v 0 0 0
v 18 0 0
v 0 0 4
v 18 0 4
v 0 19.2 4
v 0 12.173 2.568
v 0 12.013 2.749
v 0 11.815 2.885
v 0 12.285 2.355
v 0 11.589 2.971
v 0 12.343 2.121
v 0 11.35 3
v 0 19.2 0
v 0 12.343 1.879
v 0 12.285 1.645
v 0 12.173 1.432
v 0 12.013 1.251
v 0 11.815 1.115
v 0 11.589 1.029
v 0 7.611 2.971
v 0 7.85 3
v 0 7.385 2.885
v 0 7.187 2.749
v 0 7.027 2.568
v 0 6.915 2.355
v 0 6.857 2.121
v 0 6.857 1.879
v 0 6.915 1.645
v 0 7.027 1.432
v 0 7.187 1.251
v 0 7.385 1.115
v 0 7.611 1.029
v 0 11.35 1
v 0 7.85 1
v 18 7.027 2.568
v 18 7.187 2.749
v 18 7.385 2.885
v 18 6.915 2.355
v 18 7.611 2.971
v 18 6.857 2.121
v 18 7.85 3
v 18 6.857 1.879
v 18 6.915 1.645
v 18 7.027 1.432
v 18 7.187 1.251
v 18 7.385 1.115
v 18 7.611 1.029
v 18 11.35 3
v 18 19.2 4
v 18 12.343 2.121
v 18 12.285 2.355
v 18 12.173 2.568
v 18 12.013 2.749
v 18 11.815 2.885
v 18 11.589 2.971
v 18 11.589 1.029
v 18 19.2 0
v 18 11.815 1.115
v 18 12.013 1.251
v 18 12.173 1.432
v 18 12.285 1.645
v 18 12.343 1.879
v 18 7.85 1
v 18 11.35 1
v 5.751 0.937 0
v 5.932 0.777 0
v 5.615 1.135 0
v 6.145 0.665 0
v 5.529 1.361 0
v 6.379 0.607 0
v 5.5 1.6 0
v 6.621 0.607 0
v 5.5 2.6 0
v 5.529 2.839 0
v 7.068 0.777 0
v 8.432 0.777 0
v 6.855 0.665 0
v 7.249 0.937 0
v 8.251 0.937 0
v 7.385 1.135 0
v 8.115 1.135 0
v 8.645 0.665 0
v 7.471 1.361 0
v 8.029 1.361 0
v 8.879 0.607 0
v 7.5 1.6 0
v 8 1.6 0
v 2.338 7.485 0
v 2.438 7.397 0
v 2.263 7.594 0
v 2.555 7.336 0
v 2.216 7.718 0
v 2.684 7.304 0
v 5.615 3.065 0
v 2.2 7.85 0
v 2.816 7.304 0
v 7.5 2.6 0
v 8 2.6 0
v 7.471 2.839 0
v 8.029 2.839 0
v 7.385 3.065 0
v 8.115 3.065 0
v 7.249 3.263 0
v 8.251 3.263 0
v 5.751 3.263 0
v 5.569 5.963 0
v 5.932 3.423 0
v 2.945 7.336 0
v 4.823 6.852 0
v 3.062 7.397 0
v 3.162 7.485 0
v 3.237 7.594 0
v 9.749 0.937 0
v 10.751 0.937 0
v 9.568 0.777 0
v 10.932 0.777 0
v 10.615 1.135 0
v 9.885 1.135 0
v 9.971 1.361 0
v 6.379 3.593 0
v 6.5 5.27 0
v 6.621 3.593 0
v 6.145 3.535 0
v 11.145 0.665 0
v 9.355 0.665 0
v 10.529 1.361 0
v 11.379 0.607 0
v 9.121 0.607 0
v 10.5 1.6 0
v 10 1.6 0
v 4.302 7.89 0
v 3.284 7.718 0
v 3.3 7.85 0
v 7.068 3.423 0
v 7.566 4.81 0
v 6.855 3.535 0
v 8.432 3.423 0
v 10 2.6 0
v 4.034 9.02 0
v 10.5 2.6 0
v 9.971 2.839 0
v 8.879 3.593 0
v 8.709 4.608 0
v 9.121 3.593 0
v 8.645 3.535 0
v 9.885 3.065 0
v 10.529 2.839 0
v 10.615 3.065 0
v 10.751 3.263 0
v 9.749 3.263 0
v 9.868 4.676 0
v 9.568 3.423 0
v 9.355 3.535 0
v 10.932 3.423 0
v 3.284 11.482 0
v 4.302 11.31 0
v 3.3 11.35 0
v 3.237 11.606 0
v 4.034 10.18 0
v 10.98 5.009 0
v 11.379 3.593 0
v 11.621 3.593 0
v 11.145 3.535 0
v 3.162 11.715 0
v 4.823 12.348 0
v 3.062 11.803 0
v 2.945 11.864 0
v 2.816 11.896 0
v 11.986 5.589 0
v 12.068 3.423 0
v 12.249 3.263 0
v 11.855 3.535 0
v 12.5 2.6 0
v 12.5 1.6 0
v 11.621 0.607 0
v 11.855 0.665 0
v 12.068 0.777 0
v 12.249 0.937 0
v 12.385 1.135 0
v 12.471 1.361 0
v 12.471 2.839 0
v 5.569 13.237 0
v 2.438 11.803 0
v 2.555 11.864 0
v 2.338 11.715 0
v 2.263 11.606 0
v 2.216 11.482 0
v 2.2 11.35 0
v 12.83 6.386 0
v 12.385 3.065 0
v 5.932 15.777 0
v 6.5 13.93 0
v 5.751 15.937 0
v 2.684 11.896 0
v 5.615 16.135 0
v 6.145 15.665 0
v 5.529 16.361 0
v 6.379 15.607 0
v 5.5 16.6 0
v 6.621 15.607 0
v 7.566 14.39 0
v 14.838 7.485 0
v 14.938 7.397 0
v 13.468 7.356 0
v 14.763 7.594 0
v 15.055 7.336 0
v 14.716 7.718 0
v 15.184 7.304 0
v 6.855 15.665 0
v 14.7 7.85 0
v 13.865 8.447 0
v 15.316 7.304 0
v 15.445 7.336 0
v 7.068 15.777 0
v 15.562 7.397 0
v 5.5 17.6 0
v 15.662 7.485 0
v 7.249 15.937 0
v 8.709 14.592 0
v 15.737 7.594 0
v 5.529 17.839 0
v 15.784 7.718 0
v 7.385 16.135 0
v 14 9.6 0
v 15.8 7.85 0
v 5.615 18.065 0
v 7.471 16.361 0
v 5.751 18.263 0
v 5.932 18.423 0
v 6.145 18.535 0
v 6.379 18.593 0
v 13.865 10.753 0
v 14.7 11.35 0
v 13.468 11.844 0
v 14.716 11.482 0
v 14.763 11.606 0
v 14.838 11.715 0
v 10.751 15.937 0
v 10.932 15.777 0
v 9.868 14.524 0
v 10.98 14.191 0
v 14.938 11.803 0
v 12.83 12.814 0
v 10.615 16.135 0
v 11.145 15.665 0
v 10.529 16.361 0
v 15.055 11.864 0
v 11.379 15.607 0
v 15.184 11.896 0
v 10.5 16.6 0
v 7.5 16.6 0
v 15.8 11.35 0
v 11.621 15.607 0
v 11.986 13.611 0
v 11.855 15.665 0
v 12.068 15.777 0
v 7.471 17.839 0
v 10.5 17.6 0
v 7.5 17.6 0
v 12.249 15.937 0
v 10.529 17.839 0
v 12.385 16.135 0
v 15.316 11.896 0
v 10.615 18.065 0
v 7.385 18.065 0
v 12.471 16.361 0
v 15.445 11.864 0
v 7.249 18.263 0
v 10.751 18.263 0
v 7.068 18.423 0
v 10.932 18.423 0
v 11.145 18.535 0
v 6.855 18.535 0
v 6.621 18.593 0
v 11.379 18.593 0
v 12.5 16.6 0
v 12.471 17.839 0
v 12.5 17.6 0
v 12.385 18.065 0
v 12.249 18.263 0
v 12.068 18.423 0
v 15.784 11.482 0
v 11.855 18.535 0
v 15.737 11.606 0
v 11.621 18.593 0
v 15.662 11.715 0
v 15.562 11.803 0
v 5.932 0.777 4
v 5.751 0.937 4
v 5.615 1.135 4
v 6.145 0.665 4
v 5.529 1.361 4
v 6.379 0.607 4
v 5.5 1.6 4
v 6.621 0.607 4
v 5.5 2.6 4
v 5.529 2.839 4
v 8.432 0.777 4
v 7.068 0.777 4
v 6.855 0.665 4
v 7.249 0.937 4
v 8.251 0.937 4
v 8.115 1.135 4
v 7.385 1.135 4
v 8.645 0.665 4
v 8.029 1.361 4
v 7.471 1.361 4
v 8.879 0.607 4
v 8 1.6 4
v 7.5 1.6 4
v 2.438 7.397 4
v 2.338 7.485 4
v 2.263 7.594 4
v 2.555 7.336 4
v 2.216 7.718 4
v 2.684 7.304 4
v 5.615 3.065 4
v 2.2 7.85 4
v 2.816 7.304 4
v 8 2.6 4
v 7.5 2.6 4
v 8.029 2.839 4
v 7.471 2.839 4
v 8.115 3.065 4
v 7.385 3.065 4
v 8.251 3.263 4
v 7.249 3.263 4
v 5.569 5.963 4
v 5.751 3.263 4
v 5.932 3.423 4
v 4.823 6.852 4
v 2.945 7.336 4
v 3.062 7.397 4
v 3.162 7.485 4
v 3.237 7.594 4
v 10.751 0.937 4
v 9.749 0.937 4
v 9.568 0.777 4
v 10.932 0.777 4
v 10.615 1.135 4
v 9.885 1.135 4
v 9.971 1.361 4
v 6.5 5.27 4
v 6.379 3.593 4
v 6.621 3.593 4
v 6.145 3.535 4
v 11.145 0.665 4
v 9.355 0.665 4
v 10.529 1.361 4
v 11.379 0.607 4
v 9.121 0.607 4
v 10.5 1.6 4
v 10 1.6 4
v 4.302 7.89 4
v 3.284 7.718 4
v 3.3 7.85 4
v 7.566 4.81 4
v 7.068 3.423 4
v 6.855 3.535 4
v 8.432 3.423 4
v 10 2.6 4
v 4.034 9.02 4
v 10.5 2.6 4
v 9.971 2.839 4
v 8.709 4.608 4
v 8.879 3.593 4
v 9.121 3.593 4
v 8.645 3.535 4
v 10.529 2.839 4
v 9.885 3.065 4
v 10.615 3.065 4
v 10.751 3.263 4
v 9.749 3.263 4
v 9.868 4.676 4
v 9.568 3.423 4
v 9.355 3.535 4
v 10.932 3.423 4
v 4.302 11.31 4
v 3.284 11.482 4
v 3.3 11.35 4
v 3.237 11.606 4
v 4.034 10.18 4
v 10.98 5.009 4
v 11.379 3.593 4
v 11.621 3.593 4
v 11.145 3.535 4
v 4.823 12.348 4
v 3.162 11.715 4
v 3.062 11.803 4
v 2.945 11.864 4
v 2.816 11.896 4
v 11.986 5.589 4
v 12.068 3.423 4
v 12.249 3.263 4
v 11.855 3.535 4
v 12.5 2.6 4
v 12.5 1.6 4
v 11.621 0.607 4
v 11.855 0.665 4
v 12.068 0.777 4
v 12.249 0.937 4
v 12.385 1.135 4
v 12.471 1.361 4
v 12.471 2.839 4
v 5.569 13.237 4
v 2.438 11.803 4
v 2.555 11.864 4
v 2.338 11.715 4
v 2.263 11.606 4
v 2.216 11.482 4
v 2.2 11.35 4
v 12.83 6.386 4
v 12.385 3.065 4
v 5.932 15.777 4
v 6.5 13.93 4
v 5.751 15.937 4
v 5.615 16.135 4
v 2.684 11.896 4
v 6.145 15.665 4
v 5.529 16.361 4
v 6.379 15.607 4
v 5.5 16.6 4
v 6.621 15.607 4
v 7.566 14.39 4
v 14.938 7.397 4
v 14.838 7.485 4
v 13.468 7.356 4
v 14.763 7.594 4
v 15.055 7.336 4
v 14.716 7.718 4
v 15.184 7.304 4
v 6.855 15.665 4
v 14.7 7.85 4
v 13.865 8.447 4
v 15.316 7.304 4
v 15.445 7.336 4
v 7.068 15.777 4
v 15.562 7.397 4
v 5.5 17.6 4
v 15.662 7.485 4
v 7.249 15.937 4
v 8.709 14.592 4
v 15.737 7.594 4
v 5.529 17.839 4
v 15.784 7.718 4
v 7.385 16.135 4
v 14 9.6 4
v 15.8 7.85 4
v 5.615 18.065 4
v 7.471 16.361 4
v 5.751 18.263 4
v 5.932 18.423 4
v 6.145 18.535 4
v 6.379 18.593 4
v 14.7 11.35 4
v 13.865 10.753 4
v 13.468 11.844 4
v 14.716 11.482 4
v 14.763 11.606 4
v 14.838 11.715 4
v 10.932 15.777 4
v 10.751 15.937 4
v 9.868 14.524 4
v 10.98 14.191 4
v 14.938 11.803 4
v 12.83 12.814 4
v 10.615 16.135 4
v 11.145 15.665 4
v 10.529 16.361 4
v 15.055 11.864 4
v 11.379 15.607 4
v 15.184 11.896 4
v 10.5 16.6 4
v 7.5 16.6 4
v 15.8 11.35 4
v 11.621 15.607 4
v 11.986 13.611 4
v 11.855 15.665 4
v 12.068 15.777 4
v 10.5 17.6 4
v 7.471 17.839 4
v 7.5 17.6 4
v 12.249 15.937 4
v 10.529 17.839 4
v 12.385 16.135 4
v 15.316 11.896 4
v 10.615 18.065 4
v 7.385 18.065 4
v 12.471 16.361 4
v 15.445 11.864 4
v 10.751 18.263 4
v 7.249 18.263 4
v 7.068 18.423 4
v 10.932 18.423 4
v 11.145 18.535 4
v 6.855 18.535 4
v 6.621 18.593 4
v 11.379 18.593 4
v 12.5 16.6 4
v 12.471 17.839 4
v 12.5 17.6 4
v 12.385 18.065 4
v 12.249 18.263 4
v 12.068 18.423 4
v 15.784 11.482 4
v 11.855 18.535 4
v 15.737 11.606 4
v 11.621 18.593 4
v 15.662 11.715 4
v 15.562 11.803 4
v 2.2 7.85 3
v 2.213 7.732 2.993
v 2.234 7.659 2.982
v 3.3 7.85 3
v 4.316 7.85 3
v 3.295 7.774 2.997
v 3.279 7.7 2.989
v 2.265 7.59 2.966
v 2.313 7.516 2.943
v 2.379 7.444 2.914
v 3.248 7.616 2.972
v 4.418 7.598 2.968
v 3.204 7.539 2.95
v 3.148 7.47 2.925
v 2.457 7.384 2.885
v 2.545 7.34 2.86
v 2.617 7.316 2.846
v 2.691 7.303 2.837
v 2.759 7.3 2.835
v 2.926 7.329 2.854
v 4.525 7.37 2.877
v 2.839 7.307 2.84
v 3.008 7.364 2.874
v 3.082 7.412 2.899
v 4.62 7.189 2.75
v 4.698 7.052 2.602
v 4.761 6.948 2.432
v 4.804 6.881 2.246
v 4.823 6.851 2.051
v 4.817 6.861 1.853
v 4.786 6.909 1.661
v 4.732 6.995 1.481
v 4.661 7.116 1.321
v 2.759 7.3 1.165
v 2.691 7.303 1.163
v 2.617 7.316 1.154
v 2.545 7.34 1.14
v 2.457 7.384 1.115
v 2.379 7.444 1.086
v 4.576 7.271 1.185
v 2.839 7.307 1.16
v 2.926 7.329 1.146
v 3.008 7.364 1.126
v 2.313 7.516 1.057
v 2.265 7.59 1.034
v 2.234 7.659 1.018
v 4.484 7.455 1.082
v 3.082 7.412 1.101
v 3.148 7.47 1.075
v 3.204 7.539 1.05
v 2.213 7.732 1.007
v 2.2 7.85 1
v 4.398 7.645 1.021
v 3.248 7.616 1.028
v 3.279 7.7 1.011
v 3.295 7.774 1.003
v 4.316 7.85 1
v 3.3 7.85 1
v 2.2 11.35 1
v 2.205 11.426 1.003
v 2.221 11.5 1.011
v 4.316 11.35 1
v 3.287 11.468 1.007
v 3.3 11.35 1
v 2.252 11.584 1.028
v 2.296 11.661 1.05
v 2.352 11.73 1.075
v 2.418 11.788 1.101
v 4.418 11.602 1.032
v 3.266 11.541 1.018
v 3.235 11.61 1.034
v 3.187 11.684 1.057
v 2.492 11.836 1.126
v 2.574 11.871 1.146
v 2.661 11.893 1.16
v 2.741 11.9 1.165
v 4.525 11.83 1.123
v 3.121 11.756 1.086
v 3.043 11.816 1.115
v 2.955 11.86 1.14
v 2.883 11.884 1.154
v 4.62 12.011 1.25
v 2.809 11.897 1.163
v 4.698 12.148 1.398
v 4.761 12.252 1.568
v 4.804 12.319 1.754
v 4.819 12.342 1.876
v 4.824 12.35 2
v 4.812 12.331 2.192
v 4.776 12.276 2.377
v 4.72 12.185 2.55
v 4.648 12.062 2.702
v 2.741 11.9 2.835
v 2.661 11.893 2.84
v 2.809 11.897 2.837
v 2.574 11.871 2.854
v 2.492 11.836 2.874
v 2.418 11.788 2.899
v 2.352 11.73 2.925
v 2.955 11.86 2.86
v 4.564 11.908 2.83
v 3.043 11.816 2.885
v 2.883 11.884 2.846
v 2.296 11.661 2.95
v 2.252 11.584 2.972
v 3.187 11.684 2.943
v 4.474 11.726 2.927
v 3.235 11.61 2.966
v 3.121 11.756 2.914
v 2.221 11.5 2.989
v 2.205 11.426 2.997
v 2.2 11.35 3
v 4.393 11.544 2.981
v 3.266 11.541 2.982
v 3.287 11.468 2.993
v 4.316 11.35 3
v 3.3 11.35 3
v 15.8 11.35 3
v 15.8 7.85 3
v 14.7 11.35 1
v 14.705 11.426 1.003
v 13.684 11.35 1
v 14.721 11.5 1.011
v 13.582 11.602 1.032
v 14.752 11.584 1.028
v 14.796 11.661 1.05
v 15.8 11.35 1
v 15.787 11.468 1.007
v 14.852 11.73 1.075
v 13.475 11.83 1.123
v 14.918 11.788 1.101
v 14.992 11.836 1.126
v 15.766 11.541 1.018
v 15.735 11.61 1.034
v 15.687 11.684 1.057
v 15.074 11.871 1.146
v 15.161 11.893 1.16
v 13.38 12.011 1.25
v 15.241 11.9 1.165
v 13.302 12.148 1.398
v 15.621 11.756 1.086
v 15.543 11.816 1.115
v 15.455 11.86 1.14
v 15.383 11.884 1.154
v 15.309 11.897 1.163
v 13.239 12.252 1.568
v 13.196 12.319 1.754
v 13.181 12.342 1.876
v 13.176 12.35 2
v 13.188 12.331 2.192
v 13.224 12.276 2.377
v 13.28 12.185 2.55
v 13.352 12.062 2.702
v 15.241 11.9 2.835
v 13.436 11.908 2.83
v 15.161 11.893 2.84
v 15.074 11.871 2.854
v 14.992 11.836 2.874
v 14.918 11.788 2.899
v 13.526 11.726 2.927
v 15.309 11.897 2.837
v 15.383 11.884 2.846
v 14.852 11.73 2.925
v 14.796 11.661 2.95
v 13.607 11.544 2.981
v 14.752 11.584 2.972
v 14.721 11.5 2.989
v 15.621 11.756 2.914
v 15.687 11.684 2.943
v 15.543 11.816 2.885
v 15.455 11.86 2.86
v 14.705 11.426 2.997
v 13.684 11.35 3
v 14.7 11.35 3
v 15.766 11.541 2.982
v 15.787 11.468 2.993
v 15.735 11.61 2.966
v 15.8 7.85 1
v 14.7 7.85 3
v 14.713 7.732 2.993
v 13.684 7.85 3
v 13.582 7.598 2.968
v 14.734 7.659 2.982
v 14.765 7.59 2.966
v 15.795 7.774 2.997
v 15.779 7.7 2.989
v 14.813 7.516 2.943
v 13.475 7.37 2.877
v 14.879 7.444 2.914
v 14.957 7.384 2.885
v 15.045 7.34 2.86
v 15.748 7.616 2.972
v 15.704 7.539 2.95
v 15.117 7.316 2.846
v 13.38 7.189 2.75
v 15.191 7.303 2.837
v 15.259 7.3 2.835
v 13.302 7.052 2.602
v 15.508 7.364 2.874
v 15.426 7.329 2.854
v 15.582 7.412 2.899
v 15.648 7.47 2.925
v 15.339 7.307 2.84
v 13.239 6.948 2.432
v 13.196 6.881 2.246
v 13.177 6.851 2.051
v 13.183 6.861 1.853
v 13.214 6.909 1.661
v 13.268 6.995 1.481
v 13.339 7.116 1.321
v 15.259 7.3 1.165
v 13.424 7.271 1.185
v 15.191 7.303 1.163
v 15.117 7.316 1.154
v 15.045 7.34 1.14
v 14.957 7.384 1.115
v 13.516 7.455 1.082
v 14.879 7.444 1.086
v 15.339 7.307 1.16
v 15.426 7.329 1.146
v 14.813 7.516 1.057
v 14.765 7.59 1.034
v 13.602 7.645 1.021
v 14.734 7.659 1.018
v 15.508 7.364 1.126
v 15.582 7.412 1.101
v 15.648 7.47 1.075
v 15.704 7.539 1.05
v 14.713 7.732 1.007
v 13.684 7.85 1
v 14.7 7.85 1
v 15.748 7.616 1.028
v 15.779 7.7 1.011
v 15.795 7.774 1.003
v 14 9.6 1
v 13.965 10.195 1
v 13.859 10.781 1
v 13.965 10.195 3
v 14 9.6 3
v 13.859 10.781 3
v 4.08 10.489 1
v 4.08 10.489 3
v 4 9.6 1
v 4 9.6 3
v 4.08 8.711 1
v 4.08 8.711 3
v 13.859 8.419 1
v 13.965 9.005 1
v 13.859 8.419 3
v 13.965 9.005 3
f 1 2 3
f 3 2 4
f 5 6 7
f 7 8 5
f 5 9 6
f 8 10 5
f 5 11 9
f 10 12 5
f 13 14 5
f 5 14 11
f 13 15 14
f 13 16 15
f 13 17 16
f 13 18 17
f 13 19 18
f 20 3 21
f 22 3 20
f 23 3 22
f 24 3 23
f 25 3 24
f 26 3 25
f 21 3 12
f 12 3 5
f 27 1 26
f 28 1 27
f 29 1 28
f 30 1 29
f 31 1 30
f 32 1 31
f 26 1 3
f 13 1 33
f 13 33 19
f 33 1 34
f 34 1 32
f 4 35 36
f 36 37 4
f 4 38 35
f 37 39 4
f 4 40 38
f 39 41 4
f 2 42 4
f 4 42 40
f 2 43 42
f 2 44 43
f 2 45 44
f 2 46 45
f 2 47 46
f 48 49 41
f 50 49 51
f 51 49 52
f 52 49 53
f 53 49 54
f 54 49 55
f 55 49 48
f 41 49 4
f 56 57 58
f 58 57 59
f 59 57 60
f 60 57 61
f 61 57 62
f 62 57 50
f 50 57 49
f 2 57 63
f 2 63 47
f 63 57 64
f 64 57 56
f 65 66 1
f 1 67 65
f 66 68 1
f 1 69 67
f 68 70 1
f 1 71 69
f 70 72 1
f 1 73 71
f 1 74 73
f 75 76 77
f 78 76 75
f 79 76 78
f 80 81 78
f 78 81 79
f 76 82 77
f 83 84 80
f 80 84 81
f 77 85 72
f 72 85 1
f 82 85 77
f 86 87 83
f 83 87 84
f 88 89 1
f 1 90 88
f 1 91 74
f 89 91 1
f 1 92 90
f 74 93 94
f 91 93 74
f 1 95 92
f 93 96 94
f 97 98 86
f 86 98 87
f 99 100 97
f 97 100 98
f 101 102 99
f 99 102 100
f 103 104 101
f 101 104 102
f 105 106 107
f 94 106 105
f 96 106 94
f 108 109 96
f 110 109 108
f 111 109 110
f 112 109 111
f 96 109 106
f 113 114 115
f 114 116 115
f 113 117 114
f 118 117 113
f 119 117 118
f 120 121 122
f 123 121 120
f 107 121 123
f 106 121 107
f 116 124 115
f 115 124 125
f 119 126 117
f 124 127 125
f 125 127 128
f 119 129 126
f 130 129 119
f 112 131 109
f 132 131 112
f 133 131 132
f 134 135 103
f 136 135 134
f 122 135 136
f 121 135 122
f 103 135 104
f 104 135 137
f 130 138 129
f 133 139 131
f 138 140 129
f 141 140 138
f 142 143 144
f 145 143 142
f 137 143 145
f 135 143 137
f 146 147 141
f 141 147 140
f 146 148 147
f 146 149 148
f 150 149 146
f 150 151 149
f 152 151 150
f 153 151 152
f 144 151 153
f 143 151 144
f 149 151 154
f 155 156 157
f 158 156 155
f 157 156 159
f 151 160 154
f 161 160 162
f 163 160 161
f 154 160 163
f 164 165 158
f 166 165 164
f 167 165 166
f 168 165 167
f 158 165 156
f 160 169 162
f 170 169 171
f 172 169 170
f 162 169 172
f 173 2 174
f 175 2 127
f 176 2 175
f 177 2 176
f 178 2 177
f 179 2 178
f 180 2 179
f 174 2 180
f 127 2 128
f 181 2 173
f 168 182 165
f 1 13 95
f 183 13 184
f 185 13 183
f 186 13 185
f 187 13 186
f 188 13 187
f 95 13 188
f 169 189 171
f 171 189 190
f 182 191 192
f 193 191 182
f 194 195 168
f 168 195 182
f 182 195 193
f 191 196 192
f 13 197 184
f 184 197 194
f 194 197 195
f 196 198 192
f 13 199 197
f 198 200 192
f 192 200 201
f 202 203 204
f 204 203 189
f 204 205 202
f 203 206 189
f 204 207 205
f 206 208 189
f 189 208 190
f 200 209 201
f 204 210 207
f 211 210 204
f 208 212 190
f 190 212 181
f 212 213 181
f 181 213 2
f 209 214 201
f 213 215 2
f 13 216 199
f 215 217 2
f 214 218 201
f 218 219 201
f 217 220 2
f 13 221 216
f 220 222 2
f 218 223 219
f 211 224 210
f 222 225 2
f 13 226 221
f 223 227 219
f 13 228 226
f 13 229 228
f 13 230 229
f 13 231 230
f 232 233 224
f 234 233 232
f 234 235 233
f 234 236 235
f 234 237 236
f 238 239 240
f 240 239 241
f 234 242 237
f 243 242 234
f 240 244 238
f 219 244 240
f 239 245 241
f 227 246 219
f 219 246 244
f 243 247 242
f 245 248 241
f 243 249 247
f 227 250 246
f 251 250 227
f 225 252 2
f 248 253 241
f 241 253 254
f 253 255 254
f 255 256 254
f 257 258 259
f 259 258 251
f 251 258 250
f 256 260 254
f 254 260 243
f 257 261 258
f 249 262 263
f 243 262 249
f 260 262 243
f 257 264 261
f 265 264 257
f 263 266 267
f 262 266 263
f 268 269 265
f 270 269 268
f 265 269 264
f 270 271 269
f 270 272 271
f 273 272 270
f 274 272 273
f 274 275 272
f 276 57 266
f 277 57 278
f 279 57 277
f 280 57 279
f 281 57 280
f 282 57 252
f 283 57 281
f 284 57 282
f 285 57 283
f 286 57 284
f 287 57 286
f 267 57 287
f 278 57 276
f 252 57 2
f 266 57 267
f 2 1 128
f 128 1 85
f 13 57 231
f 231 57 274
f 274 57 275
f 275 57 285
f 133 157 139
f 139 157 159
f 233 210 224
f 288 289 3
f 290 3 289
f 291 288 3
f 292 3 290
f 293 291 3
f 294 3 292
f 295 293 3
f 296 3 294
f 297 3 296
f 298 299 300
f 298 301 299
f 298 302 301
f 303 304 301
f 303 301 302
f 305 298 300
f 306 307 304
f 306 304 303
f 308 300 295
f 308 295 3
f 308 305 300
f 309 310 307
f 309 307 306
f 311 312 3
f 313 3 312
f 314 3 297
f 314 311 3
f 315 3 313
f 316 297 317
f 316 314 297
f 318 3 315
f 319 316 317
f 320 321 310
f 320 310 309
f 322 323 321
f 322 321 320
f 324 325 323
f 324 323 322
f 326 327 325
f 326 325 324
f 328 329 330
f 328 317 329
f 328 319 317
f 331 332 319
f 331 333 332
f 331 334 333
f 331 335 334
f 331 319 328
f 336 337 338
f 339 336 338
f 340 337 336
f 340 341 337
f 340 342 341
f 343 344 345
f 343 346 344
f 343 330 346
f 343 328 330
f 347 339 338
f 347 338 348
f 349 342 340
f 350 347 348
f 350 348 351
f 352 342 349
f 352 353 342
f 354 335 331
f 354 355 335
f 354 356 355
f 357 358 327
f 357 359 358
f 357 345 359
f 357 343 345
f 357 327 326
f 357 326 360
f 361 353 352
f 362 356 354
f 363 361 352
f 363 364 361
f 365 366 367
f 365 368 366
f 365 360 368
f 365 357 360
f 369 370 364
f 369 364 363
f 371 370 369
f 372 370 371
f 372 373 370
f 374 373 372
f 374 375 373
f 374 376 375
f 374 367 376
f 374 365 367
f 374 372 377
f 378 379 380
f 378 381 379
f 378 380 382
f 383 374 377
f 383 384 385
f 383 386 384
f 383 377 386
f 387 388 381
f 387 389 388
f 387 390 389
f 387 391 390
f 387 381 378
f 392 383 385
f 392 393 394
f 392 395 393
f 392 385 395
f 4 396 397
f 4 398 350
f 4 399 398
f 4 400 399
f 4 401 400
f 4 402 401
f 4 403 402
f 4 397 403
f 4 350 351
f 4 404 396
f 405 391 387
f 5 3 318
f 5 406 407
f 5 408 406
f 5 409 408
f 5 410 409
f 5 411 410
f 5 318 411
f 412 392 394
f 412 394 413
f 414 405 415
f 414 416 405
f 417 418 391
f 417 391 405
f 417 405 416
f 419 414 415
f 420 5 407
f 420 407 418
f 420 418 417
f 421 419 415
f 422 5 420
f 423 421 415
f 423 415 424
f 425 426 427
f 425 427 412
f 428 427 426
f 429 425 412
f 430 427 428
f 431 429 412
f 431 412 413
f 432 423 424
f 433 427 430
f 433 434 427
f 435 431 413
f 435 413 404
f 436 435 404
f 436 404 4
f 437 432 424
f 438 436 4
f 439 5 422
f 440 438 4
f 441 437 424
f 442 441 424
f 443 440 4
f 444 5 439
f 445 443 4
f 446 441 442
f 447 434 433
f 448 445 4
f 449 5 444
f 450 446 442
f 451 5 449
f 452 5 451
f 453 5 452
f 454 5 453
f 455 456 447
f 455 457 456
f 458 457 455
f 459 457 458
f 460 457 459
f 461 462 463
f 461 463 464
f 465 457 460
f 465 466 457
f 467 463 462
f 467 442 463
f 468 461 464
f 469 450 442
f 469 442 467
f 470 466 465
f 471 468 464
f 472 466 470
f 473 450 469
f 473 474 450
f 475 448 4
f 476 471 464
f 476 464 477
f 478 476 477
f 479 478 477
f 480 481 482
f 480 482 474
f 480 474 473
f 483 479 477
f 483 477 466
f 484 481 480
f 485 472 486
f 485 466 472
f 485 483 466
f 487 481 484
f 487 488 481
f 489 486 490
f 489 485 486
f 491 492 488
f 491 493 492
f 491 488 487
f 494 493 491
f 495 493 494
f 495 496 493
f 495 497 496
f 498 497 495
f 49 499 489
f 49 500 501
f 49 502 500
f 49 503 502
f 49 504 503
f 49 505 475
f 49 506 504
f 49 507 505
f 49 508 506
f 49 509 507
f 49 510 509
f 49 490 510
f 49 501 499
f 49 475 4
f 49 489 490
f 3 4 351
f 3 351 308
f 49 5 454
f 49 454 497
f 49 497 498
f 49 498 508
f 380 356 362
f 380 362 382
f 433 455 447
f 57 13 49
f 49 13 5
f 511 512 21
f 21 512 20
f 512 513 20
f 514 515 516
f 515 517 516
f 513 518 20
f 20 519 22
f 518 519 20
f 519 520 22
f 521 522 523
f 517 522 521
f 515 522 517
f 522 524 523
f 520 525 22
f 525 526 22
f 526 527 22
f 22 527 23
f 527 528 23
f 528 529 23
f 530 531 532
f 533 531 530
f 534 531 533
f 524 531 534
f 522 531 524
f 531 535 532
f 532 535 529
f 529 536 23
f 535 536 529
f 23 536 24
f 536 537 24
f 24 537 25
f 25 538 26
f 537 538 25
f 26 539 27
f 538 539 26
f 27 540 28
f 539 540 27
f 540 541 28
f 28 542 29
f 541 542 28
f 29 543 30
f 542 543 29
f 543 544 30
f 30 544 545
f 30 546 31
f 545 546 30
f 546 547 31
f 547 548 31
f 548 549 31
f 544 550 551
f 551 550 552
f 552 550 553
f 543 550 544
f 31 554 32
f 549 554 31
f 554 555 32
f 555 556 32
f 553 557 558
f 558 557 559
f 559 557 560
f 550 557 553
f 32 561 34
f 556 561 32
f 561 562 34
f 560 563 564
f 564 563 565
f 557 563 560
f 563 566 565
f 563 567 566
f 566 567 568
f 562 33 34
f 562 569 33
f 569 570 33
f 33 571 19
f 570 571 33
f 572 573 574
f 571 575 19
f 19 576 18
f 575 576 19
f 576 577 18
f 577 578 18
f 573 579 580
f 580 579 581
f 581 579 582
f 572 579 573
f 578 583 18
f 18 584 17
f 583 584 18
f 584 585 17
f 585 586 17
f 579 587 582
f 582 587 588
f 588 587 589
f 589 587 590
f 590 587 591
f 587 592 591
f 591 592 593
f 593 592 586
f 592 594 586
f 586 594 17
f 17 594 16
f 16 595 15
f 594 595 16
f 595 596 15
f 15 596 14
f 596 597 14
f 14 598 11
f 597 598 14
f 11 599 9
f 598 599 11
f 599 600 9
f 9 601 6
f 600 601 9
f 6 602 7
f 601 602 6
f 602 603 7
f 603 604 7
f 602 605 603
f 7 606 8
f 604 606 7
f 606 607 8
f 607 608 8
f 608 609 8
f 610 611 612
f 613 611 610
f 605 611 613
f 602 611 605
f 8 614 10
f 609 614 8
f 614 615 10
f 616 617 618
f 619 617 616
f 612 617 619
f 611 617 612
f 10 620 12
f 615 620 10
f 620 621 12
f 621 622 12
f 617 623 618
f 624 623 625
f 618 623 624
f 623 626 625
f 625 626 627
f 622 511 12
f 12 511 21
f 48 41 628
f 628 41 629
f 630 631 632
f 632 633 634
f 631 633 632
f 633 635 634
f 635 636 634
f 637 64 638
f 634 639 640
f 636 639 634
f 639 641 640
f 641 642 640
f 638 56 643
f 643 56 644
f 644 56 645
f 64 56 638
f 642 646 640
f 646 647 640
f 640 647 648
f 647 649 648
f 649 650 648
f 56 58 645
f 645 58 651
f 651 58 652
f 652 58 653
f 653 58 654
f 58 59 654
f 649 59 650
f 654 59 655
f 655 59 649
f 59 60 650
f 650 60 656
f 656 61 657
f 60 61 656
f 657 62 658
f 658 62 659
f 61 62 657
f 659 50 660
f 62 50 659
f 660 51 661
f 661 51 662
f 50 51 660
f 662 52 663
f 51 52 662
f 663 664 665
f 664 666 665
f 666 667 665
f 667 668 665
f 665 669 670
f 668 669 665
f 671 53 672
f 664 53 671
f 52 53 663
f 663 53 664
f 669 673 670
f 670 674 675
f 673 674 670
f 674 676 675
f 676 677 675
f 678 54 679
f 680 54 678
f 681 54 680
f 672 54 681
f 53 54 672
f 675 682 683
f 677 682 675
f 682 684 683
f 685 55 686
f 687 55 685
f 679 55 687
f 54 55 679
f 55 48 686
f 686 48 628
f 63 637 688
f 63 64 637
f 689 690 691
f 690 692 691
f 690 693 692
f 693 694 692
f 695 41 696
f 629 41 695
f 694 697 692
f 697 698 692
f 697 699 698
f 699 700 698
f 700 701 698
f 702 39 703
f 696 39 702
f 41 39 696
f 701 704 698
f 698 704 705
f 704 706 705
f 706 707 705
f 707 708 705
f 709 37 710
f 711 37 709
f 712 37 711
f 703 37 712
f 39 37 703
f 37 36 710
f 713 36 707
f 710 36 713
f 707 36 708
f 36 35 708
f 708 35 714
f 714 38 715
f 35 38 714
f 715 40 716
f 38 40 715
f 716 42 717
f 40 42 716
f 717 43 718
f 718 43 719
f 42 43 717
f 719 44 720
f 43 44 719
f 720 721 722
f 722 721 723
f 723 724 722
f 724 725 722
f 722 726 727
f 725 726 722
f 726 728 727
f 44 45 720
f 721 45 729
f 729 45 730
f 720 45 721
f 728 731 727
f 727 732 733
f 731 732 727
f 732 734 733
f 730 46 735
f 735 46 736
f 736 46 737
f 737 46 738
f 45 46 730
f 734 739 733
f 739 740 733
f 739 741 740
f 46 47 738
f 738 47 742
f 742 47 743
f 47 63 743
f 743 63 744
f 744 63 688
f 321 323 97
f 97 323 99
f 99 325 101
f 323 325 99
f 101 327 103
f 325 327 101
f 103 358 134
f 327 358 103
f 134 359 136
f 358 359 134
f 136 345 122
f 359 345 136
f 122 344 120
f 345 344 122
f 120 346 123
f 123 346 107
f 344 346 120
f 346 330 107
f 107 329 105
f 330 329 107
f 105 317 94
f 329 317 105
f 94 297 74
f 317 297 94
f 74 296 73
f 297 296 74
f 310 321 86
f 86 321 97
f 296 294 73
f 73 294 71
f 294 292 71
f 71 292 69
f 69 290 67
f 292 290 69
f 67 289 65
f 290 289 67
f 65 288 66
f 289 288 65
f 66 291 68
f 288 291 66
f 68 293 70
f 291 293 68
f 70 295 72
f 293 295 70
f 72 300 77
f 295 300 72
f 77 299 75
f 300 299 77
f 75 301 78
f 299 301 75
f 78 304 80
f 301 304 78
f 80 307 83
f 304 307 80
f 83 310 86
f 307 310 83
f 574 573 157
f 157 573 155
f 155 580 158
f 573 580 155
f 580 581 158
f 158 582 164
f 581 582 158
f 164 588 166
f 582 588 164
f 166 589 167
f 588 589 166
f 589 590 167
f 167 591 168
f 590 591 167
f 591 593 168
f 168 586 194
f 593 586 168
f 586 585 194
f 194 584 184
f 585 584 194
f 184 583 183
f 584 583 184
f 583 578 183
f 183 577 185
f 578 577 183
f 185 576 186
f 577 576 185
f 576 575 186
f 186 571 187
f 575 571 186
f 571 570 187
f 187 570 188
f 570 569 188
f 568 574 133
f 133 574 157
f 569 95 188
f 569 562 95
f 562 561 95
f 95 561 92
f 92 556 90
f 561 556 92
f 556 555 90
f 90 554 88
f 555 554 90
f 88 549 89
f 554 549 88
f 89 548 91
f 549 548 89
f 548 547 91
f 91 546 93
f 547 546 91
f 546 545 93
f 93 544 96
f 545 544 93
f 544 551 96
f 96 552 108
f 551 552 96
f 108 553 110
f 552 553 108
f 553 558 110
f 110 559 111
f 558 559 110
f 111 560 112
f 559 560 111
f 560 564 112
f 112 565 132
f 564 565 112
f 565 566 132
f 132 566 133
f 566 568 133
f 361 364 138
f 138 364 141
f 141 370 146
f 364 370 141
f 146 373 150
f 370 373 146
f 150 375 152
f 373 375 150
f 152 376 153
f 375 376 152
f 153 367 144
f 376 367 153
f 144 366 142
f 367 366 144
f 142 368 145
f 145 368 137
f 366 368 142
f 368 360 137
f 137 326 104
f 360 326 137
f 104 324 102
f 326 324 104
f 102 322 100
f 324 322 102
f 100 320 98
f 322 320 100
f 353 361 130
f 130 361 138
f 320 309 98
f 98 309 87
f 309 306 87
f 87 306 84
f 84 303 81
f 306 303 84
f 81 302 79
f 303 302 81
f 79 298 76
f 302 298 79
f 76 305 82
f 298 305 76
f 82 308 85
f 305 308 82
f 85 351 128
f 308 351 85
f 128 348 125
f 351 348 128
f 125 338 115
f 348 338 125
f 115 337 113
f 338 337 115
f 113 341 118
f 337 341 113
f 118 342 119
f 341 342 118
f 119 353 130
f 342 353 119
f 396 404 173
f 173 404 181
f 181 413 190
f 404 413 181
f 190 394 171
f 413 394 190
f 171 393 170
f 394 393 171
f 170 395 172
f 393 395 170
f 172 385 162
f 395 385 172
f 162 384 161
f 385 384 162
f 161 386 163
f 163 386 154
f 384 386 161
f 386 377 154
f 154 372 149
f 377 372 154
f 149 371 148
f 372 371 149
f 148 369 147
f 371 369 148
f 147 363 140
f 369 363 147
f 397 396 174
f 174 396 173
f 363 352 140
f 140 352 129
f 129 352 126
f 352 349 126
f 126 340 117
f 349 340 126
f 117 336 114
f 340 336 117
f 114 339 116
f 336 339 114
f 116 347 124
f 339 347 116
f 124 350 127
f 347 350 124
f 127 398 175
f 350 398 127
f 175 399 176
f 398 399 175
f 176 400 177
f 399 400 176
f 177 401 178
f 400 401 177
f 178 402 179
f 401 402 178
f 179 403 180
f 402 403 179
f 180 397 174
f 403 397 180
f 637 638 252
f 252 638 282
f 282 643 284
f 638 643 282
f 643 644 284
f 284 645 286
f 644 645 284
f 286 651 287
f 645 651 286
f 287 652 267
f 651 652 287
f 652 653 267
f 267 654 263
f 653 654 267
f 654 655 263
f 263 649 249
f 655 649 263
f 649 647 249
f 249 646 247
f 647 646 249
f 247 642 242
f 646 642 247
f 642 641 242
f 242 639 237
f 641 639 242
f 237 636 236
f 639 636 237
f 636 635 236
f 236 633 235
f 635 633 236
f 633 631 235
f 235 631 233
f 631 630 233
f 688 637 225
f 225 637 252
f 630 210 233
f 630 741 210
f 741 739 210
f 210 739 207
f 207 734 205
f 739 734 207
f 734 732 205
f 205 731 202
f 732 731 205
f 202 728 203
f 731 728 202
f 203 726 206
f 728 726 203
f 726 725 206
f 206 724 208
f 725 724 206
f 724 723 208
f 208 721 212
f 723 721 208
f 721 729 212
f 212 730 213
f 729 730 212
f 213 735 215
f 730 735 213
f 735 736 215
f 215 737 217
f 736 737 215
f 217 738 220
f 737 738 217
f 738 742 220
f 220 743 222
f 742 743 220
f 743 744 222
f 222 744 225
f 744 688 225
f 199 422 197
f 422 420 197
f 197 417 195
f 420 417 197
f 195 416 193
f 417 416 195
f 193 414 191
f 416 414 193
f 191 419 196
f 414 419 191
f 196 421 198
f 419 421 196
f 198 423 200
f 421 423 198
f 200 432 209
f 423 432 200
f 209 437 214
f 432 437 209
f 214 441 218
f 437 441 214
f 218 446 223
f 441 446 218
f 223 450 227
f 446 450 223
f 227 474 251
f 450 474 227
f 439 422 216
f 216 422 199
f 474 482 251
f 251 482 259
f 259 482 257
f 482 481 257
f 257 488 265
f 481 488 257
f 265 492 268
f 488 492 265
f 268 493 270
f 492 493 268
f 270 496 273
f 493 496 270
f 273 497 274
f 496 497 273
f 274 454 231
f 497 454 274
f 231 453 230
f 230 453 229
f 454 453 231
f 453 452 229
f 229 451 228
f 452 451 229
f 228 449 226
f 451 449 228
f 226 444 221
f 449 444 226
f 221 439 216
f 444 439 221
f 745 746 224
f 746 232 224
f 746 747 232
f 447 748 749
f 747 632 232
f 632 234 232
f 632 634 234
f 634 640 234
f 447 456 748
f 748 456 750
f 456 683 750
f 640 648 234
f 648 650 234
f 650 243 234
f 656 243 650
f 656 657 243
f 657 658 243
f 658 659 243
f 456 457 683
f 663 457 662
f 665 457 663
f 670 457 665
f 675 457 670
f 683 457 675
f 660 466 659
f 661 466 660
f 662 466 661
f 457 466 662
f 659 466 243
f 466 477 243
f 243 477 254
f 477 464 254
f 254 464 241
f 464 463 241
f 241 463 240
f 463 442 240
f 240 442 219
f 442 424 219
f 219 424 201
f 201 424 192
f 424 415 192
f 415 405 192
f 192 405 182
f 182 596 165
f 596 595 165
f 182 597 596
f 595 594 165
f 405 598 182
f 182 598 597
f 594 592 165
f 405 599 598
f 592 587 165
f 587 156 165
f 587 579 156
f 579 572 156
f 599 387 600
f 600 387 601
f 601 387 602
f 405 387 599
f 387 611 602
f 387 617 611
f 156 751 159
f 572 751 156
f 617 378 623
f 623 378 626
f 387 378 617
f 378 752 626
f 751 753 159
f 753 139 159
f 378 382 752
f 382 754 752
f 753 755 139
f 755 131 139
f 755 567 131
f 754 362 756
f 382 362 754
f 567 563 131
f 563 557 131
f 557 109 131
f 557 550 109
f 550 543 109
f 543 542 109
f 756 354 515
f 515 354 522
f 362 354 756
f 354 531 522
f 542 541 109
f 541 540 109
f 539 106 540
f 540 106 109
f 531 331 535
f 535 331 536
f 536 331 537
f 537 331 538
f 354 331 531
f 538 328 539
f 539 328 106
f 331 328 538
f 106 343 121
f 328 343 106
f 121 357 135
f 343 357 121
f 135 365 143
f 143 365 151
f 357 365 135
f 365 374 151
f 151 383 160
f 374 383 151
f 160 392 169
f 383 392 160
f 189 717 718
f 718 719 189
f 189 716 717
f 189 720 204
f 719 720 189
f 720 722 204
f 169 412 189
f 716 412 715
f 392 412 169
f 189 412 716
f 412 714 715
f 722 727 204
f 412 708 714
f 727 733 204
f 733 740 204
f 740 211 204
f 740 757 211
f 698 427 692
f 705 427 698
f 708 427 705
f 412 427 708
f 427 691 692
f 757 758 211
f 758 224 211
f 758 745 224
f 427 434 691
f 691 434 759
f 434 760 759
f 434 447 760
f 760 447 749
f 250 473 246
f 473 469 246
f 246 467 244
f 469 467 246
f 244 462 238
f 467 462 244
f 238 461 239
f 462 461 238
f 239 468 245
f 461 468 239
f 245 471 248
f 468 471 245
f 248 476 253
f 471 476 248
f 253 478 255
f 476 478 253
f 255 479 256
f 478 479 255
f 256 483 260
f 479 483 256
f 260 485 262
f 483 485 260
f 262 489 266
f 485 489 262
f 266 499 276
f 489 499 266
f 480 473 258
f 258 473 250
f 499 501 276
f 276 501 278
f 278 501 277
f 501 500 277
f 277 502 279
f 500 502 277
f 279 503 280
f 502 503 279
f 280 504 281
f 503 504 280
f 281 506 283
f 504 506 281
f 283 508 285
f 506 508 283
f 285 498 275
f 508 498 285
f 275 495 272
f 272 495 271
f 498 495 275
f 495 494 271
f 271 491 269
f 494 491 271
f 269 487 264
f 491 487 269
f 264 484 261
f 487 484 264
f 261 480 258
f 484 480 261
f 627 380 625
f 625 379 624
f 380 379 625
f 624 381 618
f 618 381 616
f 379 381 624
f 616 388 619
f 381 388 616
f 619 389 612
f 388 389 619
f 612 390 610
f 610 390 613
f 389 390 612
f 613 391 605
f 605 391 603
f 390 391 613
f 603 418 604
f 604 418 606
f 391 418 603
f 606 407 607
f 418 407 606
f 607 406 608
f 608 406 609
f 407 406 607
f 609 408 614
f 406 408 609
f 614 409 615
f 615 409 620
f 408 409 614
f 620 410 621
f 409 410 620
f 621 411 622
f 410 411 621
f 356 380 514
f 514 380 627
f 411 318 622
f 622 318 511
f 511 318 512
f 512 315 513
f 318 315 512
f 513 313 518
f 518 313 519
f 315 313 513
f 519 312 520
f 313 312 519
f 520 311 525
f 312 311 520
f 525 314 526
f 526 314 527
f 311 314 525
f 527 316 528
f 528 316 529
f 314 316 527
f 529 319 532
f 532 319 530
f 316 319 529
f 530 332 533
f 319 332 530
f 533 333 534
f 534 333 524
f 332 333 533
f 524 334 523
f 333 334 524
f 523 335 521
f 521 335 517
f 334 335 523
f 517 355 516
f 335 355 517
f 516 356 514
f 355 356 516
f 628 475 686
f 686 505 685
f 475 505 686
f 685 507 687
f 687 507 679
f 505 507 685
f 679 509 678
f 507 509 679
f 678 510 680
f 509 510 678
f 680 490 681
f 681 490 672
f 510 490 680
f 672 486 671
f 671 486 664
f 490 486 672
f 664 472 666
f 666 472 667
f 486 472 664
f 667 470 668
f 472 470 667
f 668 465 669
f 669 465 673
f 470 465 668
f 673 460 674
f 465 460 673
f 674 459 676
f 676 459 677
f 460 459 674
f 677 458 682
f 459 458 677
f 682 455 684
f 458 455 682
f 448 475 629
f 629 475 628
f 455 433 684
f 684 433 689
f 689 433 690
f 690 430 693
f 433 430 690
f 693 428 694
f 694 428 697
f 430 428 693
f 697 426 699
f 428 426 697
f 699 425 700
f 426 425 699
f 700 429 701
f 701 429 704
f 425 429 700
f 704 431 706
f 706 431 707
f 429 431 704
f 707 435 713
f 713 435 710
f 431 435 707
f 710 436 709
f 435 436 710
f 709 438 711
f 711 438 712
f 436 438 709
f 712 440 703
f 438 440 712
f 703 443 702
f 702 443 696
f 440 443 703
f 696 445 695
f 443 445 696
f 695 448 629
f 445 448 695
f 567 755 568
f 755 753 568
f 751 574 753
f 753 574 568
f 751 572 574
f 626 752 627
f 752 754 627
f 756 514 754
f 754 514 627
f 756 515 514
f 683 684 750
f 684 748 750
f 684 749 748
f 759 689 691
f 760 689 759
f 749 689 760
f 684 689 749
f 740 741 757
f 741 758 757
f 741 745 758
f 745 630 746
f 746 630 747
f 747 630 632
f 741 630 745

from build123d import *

# Parameters (mm, degrees)
SKETCH_W             = 18
SKETCH_H             = 19.2
PAD_DEPTH            = 4
POCKET_DEPTH         = 0.001
POCKET_DEPTH_BACK    = -4.001
POCKET001_DEPTH      = 0.001
POCKET001_DEPTH_BACK = -18.001
SKETCH003_R          = 5
POCKET002_DEPTH      = 4.001


with BuildPart() as part:
    # Sketch → Pad (new body)
    with BuildSketch(Plane.XY):
        with Locations((9, 9.6)):
            Rectangle(SKETCH_W, SKETCH_H)
    extrude(amount=PAD_DEPTH)

    # Sketch001 → Pocket (cut, two sides)
    with BuildSketch(Plane.XY) as pocket_sk:
        with BuildLine():
            ThreePointArc((3.3, 11.35), (2.75, 11.9), (2.2, 11.35))
            Line((2.2, 11.35), (2.2, 7.85))
            ThreePointArc((2.2, 7.85), (2.75, 7.3), (3.3, 7.85))
            Line((3.3, 7.85), (3.3, 11.35))
        make_face()
        with BuildLine():
            ThreePointArc((15.8, 11.35), (15.25, 11.9), (14.7, 11.35))
            Line((14.7, 11.35), (14.7, 7.85))
            ThreePointArc((14.7, 7.85), (15.25, 7.3), (15.8, 7.85))
            Line((15.8, 7.85), (15.8, 11.35))
        make_face()
        with BuildLine():
            ThreePointArc((5.5, 16.6), (6.5, 15.6), (7.5, 16.6))
            Line((7.5, 16.6), (7.5, 17.6))
            ThreePointArc((7.5, 17.6), (6.5, 18.6), (5.5, 17.6))
            Line((5.5, 17.6), (5.5, 16.6))
        make_face()
        with BuildLine():
            ThreePointArc((10.5, 16.6), (11.5, 15.6), (12.5, 16.6))
            Line((12.5, 16.6), (12.5, 17.6))
            ThreePointArc((12.5, 17.6), (11.5, 18.6), (10.5, 17.6))
            Line((10.5, 17.6), (10.5, 16.6))
        make_face()
        with BuildLine():
            ThreePointArc((12.5, 2.6), (11.5, 3.6), (10.5, 2.6))
            Line((10.5, 2.6), (10.5, 1.6))
            ThreePointArc((10.5, 1.6), (11.5, 0.6), (12.5, 1.6))
            Line((12.5, 1.6), (12.5, 2.6))
        make_face()
        with BuildLine():
            ThreePointArc((10, 2.6), (9, 3.6), (8, 2.6))
            Line((8, 2.6), (8, 1.6))
            ThreePointArc((8, 1.6), (9, 0.6), (10, 1.6))
            Line((10, 1.6), (10, 2.6))
        make_face()
        with BuildLine():
            ThreePointArc((7.5, 2.6), (6.5, 3.6), (5.5, 2.6))
            Line((5.5, 2.6), (5.5, 1.6))
            ThreePointArc((5.5, 1.6), (6.5, 0.6), (7.5, 1.6))
            Line((7.5, 1.6), (7.5, 2.6))
        make_face()
    extrude(amount=-POCKET_DEPTH, mode=Mode.SUBTRACT)
    extrude(pocket_sk.sketch, amount=-POCKET_DEPTH_BACK, mode=Mode.SUBTRACT)

    # Sketch002 → Pocket001 (cut, two sides)
    with BuildSketch(Plane.YZ) as pocket001_sk:
        with BuildLine():
            ThreePointArc((7.85, 3), (6.85, 2), (7.85, 1))
            Line((7.85, 1), (11.35, 1))
            ThreePointArc((11.35, 1), (12.35, 2), (11.35, 3))
            Line((11.35, 3), (7.85, 3))
        make_face()
    extrude(amount=-POCKET001_DEPTH, mode=Mode.SUBTRACT)
    extrude(pocket001_sk.sketch, amount=-POCKET001_DEPTH_BACK, mode=Mode.SUBTRACT)

    # Sketch003 (on DatumPlane) → Pocket002 (cut, through all)
    with BuildSketch(Plane.XY.offset(4)):
        with Locations((9, 9.6)):
            Circle(SKETCH003_R)
    extrude(amount=-POCKET002_DEPTH, mode=Mode.SUBTRACT)


solid = part.part
